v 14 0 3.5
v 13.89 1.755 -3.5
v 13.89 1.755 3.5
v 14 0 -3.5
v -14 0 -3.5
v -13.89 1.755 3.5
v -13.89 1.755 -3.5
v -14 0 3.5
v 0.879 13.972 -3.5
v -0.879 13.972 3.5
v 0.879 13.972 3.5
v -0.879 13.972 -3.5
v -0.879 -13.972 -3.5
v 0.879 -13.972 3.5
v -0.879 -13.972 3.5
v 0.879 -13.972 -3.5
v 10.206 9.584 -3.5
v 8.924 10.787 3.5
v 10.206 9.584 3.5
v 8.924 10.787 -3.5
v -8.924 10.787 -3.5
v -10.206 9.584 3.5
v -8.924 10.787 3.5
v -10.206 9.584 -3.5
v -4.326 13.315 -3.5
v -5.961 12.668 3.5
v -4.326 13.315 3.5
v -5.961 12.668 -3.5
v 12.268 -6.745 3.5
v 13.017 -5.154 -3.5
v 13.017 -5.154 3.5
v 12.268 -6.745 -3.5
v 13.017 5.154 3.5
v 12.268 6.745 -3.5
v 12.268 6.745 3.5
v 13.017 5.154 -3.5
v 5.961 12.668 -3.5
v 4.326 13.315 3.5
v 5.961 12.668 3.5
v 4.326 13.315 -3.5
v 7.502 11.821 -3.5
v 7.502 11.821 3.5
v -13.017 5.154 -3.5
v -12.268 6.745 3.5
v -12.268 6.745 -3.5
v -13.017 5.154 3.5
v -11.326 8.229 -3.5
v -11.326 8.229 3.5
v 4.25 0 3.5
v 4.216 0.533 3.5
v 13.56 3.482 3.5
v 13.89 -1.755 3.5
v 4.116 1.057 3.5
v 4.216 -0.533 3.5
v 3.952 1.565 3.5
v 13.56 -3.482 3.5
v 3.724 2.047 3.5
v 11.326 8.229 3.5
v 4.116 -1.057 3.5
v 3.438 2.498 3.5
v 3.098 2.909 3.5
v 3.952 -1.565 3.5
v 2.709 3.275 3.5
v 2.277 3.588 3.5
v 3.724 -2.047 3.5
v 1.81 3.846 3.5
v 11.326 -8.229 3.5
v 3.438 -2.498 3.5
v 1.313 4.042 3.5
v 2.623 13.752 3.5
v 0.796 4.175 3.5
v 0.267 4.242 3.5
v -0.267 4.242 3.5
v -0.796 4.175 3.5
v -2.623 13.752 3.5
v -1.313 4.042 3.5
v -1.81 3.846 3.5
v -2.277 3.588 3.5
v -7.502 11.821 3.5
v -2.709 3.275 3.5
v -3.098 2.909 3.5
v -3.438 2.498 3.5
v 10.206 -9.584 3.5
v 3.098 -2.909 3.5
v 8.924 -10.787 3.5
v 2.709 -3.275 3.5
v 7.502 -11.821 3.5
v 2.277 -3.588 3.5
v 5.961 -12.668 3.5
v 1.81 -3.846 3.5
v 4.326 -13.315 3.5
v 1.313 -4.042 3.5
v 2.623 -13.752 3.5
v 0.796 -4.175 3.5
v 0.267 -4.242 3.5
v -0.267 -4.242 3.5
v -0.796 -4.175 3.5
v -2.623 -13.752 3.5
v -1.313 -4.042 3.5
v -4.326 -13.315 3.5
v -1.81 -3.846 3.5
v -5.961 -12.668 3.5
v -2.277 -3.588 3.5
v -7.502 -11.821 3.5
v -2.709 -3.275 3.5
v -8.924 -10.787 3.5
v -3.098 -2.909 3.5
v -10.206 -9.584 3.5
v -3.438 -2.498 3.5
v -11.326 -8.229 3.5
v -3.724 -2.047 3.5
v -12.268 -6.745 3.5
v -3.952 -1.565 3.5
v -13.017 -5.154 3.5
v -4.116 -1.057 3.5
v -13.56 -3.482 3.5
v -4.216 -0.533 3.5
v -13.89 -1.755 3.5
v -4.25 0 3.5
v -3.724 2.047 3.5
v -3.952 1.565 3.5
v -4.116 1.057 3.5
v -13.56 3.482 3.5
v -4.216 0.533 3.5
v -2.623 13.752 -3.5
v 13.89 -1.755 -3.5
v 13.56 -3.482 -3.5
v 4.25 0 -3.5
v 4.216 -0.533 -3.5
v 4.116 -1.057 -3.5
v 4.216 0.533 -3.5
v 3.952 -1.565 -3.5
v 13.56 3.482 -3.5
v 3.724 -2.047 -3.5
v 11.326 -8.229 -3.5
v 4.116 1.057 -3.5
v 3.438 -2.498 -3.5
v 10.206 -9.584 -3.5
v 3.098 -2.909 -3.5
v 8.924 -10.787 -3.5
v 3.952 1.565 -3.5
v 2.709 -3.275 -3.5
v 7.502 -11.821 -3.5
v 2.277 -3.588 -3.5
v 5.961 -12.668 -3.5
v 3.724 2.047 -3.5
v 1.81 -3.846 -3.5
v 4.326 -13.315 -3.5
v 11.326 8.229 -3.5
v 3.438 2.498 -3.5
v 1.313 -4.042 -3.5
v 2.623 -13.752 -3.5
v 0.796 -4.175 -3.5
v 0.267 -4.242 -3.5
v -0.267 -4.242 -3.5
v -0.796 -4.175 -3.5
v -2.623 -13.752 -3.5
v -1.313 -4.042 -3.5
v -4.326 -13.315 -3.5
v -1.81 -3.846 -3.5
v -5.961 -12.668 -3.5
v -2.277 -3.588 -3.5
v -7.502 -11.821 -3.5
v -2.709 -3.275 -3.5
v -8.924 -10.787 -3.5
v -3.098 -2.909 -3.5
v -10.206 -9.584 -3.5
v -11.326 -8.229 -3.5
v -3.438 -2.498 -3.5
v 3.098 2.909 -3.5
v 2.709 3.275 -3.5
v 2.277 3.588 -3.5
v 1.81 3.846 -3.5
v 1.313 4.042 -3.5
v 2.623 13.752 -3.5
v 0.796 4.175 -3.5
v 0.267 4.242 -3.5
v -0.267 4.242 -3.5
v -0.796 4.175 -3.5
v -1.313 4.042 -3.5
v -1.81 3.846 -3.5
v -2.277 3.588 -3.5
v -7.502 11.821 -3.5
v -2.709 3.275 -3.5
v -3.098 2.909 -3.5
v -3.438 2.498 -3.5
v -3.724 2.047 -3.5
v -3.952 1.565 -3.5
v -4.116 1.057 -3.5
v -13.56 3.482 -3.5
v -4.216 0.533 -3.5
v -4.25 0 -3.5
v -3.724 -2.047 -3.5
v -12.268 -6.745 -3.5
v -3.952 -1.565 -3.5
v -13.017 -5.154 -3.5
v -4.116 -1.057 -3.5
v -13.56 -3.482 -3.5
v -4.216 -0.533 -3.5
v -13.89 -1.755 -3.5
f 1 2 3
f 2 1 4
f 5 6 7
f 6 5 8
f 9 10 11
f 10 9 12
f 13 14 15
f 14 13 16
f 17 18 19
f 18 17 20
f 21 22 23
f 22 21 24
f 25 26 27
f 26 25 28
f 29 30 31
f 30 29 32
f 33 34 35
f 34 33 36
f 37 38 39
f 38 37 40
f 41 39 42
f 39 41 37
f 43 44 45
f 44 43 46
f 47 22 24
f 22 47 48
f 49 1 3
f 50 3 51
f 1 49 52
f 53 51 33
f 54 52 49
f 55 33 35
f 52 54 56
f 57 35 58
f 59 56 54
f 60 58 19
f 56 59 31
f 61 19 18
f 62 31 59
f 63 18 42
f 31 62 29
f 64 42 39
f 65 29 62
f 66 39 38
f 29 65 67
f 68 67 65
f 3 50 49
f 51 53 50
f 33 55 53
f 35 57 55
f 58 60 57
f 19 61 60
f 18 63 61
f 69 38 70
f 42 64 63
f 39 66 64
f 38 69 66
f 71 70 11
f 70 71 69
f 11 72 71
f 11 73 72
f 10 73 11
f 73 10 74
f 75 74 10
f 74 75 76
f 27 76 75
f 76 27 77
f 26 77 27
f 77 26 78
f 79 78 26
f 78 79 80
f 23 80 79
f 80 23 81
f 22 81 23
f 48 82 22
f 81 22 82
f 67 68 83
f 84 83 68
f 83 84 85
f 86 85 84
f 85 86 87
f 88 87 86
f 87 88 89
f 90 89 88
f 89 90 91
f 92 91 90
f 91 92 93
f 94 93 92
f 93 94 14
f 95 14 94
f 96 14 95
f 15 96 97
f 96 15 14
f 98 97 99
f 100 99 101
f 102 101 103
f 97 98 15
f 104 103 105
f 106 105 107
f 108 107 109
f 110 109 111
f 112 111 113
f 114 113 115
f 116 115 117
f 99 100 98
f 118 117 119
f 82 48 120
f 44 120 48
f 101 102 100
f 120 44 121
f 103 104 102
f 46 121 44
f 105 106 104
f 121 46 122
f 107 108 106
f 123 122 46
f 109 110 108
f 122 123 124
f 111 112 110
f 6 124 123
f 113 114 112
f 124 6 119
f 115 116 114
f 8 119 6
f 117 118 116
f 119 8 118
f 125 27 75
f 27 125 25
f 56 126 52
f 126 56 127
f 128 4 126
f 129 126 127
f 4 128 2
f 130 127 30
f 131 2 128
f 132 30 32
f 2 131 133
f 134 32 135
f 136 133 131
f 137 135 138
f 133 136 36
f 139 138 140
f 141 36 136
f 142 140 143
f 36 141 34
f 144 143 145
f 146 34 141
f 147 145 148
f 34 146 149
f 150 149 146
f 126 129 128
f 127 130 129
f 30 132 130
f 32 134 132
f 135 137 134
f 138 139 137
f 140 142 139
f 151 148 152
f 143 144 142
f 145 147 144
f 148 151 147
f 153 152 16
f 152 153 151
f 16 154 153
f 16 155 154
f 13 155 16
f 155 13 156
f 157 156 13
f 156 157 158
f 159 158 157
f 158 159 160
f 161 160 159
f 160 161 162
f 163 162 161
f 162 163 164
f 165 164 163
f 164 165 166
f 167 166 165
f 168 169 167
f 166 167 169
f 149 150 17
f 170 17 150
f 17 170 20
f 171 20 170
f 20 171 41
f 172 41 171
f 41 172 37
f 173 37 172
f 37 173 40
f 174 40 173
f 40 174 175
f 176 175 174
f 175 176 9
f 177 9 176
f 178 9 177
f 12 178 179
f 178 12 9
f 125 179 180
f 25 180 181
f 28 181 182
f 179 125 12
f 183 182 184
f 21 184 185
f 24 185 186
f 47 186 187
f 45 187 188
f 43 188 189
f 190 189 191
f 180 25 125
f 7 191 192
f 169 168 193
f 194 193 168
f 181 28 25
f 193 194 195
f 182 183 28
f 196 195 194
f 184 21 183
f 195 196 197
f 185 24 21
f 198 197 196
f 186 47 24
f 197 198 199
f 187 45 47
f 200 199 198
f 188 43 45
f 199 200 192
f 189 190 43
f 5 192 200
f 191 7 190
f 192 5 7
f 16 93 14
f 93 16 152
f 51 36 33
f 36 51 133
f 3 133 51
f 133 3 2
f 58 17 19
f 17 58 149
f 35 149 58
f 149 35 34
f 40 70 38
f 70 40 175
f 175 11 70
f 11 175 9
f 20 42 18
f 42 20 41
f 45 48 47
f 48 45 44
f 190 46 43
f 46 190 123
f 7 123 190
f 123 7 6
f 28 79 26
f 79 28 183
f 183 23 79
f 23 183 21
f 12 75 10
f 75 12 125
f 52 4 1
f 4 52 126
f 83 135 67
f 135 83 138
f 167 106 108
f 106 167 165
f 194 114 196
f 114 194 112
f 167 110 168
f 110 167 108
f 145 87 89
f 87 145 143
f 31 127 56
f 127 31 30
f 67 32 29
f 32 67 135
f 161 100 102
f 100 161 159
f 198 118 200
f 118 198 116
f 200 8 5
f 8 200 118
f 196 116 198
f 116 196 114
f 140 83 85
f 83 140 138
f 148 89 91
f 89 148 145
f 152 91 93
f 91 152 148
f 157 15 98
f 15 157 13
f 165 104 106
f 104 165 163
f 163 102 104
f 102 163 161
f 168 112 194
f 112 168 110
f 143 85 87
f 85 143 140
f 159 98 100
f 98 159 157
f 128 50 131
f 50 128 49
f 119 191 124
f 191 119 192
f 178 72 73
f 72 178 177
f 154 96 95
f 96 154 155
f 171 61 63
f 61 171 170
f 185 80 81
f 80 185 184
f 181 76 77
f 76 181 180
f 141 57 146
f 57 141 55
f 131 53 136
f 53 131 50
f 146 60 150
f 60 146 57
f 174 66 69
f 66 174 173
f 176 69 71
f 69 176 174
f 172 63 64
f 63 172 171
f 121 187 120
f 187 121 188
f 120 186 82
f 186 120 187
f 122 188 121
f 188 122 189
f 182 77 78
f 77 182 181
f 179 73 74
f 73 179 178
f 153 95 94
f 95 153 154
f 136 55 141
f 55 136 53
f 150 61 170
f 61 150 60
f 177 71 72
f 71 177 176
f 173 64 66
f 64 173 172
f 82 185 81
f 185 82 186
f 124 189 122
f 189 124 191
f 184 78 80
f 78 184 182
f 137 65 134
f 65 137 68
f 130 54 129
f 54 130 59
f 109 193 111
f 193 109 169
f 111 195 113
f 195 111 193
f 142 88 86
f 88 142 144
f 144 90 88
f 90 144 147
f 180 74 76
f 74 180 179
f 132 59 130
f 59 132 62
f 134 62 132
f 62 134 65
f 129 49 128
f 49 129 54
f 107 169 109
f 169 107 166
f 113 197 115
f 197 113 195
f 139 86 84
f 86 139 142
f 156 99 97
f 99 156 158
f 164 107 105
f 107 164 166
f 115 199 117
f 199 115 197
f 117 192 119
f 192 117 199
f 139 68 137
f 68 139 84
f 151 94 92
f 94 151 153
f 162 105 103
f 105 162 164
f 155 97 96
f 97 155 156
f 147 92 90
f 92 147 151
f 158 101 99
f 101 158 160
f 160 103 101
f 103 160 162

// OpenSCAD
$fn = 50;


difference() {
	union() {
		translate(v = [0, 0, -3.5000000000]) {
			cylinder(h = 7, r = 14.0000000000);
		}
	}
	union() {
		translate(v = [0, 0, -100.0000000000]) {
			cylinder(h = 200, r = 4.2500000000);
		}
	}
}
